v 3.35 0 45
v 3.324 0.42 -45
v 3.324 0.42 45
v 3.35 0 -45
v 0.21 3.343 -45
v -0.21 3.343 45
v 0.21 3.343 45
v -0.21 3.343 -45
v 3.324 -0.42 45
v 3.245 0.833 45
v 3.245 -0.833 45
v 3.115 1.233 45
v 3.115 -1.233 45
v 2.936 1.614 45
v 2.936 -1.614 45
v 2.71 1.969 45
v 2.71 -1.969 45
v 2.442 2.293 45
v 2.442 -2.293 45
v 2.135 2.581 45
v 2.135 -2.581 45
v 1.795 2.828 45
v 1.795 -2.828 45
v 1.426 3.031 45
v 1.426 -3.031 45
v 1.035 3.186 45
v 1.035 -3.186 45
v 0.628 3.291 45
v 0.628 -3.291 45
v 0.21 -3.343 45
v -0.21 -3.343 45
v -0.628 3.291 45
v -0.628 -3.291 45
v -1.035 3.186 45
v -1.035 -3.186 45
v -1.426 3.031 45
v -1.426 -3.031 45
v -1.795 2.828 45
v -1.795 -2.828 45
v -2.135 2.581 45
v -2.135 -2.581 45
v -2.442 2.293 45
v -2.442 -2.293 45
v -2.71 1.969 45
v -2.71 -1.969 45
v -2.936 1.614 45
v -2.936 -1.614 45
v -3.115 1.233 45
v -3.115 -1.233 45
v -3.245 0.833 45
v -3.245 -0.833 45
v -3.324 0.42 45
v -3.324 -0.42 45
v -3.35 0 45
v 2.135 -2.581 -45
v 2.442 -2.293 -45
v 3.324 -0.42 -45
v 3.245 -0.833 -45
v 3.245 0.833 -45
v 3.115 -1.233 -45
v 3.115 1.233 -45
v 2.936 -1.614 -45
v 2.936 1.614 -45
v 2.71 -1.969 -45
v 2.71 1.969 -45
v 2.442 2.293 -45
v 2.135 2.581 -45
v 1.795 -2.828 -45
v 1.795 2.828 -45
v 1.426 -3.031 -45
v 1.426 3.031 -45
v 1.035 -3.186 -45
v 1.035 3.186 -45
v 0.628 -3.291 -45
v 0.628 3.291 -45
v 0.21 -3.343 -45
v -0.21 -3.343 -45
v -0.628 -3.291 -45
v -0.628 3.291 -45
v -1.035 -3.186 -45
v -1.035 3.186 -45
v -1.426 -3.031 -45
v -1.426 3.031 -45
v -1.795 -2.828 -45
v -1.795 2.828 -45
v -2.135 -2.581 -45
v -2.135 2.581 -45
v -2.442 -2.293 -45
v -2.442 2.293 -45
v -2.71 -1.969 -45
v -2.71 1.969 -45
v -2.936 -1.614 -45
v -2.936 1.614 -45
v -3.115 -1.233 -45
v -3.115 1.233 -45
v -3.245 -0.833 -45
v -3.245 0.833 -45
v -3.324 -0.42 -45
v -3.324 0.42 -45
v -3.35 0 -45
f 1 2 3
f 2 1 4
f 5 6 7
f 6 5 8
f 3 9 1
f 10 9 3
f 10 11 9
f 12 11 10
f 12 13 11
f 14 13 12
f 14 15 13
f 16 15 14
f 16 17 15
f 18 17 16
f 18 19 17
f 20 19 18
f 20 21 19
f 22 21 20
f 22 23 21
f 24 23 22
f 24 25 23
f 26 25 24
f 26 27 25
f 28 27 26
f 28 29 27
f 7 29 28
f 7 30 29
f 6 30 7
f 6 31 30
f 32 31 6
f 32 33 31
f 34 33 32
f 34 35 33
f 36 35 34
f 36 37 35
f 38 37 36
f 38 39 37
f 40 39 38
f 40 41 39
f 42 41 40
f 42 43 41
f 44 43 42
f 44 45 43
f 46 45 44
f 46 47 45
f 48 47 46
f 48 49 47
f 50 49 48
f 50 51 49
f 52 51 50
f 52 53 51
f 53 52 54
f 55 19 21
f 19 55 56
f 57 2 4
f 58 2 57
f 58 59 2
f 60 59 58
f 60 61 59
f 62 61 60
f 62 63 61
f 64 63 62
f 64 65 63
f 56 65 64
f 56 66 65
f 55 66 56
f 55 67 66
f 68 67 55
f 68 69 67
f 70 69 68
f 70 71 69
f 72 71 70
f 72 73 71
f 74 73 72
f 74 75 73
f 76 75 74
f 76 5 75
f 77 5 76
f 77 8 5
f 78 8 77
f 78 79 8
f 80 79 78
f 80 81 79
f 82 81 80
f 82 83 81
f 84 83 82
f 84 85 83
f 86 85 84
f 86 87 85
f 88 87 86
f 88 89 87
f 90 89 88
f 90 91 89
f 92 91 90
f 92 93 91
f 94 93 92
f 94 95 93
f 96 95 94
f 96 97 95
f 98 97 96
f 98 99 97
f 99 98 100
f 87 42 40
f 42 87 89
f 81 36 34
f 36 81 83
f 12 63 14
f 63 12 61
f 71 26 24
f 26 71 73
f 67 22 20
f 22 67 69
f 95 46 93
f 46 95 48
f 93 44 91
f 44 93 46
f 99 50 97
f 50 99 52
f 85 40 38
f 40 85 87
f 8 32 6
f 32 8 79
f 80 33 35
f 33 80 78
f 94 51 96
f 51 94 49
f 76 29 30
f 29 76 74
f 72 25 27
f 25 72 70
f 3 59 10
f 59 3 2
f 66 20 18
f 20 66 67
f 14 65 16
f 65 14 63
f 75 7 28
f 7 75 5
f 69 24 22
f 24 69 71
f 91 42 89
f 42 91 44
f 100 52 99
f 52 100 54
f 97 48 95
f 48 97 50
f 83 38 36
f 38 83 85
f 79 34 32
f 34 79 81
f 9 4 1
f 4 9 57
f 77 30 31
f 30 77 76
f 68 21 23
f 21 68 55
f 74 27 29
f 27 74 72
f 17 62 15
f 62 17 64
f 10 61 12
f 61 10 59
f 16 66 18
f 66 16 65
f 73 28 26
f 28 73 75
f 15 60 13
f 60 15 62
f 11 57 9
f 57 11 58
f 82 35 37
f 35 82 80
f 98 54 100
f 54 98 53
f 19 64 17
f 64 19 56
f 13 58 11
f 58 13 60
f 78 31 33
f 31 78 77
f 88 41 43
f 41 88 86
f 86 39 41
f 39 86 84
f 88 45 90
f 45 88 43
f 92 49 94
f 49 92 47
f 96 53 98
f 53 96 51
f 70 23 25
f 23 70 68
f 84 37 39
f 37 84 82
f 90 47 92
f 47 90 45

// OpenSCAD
$fn = 50;


difference() {
	union() {
		translate(v = [0, 0, -45.0000000000]) {
			cylinder(h = 90, r = 3.3500000000);
		}
	}
	union() {
		translate(v = [0, 0, -100.0000000000]) {
			cylinder(h = 200, r = 0);
		}
	}
}
